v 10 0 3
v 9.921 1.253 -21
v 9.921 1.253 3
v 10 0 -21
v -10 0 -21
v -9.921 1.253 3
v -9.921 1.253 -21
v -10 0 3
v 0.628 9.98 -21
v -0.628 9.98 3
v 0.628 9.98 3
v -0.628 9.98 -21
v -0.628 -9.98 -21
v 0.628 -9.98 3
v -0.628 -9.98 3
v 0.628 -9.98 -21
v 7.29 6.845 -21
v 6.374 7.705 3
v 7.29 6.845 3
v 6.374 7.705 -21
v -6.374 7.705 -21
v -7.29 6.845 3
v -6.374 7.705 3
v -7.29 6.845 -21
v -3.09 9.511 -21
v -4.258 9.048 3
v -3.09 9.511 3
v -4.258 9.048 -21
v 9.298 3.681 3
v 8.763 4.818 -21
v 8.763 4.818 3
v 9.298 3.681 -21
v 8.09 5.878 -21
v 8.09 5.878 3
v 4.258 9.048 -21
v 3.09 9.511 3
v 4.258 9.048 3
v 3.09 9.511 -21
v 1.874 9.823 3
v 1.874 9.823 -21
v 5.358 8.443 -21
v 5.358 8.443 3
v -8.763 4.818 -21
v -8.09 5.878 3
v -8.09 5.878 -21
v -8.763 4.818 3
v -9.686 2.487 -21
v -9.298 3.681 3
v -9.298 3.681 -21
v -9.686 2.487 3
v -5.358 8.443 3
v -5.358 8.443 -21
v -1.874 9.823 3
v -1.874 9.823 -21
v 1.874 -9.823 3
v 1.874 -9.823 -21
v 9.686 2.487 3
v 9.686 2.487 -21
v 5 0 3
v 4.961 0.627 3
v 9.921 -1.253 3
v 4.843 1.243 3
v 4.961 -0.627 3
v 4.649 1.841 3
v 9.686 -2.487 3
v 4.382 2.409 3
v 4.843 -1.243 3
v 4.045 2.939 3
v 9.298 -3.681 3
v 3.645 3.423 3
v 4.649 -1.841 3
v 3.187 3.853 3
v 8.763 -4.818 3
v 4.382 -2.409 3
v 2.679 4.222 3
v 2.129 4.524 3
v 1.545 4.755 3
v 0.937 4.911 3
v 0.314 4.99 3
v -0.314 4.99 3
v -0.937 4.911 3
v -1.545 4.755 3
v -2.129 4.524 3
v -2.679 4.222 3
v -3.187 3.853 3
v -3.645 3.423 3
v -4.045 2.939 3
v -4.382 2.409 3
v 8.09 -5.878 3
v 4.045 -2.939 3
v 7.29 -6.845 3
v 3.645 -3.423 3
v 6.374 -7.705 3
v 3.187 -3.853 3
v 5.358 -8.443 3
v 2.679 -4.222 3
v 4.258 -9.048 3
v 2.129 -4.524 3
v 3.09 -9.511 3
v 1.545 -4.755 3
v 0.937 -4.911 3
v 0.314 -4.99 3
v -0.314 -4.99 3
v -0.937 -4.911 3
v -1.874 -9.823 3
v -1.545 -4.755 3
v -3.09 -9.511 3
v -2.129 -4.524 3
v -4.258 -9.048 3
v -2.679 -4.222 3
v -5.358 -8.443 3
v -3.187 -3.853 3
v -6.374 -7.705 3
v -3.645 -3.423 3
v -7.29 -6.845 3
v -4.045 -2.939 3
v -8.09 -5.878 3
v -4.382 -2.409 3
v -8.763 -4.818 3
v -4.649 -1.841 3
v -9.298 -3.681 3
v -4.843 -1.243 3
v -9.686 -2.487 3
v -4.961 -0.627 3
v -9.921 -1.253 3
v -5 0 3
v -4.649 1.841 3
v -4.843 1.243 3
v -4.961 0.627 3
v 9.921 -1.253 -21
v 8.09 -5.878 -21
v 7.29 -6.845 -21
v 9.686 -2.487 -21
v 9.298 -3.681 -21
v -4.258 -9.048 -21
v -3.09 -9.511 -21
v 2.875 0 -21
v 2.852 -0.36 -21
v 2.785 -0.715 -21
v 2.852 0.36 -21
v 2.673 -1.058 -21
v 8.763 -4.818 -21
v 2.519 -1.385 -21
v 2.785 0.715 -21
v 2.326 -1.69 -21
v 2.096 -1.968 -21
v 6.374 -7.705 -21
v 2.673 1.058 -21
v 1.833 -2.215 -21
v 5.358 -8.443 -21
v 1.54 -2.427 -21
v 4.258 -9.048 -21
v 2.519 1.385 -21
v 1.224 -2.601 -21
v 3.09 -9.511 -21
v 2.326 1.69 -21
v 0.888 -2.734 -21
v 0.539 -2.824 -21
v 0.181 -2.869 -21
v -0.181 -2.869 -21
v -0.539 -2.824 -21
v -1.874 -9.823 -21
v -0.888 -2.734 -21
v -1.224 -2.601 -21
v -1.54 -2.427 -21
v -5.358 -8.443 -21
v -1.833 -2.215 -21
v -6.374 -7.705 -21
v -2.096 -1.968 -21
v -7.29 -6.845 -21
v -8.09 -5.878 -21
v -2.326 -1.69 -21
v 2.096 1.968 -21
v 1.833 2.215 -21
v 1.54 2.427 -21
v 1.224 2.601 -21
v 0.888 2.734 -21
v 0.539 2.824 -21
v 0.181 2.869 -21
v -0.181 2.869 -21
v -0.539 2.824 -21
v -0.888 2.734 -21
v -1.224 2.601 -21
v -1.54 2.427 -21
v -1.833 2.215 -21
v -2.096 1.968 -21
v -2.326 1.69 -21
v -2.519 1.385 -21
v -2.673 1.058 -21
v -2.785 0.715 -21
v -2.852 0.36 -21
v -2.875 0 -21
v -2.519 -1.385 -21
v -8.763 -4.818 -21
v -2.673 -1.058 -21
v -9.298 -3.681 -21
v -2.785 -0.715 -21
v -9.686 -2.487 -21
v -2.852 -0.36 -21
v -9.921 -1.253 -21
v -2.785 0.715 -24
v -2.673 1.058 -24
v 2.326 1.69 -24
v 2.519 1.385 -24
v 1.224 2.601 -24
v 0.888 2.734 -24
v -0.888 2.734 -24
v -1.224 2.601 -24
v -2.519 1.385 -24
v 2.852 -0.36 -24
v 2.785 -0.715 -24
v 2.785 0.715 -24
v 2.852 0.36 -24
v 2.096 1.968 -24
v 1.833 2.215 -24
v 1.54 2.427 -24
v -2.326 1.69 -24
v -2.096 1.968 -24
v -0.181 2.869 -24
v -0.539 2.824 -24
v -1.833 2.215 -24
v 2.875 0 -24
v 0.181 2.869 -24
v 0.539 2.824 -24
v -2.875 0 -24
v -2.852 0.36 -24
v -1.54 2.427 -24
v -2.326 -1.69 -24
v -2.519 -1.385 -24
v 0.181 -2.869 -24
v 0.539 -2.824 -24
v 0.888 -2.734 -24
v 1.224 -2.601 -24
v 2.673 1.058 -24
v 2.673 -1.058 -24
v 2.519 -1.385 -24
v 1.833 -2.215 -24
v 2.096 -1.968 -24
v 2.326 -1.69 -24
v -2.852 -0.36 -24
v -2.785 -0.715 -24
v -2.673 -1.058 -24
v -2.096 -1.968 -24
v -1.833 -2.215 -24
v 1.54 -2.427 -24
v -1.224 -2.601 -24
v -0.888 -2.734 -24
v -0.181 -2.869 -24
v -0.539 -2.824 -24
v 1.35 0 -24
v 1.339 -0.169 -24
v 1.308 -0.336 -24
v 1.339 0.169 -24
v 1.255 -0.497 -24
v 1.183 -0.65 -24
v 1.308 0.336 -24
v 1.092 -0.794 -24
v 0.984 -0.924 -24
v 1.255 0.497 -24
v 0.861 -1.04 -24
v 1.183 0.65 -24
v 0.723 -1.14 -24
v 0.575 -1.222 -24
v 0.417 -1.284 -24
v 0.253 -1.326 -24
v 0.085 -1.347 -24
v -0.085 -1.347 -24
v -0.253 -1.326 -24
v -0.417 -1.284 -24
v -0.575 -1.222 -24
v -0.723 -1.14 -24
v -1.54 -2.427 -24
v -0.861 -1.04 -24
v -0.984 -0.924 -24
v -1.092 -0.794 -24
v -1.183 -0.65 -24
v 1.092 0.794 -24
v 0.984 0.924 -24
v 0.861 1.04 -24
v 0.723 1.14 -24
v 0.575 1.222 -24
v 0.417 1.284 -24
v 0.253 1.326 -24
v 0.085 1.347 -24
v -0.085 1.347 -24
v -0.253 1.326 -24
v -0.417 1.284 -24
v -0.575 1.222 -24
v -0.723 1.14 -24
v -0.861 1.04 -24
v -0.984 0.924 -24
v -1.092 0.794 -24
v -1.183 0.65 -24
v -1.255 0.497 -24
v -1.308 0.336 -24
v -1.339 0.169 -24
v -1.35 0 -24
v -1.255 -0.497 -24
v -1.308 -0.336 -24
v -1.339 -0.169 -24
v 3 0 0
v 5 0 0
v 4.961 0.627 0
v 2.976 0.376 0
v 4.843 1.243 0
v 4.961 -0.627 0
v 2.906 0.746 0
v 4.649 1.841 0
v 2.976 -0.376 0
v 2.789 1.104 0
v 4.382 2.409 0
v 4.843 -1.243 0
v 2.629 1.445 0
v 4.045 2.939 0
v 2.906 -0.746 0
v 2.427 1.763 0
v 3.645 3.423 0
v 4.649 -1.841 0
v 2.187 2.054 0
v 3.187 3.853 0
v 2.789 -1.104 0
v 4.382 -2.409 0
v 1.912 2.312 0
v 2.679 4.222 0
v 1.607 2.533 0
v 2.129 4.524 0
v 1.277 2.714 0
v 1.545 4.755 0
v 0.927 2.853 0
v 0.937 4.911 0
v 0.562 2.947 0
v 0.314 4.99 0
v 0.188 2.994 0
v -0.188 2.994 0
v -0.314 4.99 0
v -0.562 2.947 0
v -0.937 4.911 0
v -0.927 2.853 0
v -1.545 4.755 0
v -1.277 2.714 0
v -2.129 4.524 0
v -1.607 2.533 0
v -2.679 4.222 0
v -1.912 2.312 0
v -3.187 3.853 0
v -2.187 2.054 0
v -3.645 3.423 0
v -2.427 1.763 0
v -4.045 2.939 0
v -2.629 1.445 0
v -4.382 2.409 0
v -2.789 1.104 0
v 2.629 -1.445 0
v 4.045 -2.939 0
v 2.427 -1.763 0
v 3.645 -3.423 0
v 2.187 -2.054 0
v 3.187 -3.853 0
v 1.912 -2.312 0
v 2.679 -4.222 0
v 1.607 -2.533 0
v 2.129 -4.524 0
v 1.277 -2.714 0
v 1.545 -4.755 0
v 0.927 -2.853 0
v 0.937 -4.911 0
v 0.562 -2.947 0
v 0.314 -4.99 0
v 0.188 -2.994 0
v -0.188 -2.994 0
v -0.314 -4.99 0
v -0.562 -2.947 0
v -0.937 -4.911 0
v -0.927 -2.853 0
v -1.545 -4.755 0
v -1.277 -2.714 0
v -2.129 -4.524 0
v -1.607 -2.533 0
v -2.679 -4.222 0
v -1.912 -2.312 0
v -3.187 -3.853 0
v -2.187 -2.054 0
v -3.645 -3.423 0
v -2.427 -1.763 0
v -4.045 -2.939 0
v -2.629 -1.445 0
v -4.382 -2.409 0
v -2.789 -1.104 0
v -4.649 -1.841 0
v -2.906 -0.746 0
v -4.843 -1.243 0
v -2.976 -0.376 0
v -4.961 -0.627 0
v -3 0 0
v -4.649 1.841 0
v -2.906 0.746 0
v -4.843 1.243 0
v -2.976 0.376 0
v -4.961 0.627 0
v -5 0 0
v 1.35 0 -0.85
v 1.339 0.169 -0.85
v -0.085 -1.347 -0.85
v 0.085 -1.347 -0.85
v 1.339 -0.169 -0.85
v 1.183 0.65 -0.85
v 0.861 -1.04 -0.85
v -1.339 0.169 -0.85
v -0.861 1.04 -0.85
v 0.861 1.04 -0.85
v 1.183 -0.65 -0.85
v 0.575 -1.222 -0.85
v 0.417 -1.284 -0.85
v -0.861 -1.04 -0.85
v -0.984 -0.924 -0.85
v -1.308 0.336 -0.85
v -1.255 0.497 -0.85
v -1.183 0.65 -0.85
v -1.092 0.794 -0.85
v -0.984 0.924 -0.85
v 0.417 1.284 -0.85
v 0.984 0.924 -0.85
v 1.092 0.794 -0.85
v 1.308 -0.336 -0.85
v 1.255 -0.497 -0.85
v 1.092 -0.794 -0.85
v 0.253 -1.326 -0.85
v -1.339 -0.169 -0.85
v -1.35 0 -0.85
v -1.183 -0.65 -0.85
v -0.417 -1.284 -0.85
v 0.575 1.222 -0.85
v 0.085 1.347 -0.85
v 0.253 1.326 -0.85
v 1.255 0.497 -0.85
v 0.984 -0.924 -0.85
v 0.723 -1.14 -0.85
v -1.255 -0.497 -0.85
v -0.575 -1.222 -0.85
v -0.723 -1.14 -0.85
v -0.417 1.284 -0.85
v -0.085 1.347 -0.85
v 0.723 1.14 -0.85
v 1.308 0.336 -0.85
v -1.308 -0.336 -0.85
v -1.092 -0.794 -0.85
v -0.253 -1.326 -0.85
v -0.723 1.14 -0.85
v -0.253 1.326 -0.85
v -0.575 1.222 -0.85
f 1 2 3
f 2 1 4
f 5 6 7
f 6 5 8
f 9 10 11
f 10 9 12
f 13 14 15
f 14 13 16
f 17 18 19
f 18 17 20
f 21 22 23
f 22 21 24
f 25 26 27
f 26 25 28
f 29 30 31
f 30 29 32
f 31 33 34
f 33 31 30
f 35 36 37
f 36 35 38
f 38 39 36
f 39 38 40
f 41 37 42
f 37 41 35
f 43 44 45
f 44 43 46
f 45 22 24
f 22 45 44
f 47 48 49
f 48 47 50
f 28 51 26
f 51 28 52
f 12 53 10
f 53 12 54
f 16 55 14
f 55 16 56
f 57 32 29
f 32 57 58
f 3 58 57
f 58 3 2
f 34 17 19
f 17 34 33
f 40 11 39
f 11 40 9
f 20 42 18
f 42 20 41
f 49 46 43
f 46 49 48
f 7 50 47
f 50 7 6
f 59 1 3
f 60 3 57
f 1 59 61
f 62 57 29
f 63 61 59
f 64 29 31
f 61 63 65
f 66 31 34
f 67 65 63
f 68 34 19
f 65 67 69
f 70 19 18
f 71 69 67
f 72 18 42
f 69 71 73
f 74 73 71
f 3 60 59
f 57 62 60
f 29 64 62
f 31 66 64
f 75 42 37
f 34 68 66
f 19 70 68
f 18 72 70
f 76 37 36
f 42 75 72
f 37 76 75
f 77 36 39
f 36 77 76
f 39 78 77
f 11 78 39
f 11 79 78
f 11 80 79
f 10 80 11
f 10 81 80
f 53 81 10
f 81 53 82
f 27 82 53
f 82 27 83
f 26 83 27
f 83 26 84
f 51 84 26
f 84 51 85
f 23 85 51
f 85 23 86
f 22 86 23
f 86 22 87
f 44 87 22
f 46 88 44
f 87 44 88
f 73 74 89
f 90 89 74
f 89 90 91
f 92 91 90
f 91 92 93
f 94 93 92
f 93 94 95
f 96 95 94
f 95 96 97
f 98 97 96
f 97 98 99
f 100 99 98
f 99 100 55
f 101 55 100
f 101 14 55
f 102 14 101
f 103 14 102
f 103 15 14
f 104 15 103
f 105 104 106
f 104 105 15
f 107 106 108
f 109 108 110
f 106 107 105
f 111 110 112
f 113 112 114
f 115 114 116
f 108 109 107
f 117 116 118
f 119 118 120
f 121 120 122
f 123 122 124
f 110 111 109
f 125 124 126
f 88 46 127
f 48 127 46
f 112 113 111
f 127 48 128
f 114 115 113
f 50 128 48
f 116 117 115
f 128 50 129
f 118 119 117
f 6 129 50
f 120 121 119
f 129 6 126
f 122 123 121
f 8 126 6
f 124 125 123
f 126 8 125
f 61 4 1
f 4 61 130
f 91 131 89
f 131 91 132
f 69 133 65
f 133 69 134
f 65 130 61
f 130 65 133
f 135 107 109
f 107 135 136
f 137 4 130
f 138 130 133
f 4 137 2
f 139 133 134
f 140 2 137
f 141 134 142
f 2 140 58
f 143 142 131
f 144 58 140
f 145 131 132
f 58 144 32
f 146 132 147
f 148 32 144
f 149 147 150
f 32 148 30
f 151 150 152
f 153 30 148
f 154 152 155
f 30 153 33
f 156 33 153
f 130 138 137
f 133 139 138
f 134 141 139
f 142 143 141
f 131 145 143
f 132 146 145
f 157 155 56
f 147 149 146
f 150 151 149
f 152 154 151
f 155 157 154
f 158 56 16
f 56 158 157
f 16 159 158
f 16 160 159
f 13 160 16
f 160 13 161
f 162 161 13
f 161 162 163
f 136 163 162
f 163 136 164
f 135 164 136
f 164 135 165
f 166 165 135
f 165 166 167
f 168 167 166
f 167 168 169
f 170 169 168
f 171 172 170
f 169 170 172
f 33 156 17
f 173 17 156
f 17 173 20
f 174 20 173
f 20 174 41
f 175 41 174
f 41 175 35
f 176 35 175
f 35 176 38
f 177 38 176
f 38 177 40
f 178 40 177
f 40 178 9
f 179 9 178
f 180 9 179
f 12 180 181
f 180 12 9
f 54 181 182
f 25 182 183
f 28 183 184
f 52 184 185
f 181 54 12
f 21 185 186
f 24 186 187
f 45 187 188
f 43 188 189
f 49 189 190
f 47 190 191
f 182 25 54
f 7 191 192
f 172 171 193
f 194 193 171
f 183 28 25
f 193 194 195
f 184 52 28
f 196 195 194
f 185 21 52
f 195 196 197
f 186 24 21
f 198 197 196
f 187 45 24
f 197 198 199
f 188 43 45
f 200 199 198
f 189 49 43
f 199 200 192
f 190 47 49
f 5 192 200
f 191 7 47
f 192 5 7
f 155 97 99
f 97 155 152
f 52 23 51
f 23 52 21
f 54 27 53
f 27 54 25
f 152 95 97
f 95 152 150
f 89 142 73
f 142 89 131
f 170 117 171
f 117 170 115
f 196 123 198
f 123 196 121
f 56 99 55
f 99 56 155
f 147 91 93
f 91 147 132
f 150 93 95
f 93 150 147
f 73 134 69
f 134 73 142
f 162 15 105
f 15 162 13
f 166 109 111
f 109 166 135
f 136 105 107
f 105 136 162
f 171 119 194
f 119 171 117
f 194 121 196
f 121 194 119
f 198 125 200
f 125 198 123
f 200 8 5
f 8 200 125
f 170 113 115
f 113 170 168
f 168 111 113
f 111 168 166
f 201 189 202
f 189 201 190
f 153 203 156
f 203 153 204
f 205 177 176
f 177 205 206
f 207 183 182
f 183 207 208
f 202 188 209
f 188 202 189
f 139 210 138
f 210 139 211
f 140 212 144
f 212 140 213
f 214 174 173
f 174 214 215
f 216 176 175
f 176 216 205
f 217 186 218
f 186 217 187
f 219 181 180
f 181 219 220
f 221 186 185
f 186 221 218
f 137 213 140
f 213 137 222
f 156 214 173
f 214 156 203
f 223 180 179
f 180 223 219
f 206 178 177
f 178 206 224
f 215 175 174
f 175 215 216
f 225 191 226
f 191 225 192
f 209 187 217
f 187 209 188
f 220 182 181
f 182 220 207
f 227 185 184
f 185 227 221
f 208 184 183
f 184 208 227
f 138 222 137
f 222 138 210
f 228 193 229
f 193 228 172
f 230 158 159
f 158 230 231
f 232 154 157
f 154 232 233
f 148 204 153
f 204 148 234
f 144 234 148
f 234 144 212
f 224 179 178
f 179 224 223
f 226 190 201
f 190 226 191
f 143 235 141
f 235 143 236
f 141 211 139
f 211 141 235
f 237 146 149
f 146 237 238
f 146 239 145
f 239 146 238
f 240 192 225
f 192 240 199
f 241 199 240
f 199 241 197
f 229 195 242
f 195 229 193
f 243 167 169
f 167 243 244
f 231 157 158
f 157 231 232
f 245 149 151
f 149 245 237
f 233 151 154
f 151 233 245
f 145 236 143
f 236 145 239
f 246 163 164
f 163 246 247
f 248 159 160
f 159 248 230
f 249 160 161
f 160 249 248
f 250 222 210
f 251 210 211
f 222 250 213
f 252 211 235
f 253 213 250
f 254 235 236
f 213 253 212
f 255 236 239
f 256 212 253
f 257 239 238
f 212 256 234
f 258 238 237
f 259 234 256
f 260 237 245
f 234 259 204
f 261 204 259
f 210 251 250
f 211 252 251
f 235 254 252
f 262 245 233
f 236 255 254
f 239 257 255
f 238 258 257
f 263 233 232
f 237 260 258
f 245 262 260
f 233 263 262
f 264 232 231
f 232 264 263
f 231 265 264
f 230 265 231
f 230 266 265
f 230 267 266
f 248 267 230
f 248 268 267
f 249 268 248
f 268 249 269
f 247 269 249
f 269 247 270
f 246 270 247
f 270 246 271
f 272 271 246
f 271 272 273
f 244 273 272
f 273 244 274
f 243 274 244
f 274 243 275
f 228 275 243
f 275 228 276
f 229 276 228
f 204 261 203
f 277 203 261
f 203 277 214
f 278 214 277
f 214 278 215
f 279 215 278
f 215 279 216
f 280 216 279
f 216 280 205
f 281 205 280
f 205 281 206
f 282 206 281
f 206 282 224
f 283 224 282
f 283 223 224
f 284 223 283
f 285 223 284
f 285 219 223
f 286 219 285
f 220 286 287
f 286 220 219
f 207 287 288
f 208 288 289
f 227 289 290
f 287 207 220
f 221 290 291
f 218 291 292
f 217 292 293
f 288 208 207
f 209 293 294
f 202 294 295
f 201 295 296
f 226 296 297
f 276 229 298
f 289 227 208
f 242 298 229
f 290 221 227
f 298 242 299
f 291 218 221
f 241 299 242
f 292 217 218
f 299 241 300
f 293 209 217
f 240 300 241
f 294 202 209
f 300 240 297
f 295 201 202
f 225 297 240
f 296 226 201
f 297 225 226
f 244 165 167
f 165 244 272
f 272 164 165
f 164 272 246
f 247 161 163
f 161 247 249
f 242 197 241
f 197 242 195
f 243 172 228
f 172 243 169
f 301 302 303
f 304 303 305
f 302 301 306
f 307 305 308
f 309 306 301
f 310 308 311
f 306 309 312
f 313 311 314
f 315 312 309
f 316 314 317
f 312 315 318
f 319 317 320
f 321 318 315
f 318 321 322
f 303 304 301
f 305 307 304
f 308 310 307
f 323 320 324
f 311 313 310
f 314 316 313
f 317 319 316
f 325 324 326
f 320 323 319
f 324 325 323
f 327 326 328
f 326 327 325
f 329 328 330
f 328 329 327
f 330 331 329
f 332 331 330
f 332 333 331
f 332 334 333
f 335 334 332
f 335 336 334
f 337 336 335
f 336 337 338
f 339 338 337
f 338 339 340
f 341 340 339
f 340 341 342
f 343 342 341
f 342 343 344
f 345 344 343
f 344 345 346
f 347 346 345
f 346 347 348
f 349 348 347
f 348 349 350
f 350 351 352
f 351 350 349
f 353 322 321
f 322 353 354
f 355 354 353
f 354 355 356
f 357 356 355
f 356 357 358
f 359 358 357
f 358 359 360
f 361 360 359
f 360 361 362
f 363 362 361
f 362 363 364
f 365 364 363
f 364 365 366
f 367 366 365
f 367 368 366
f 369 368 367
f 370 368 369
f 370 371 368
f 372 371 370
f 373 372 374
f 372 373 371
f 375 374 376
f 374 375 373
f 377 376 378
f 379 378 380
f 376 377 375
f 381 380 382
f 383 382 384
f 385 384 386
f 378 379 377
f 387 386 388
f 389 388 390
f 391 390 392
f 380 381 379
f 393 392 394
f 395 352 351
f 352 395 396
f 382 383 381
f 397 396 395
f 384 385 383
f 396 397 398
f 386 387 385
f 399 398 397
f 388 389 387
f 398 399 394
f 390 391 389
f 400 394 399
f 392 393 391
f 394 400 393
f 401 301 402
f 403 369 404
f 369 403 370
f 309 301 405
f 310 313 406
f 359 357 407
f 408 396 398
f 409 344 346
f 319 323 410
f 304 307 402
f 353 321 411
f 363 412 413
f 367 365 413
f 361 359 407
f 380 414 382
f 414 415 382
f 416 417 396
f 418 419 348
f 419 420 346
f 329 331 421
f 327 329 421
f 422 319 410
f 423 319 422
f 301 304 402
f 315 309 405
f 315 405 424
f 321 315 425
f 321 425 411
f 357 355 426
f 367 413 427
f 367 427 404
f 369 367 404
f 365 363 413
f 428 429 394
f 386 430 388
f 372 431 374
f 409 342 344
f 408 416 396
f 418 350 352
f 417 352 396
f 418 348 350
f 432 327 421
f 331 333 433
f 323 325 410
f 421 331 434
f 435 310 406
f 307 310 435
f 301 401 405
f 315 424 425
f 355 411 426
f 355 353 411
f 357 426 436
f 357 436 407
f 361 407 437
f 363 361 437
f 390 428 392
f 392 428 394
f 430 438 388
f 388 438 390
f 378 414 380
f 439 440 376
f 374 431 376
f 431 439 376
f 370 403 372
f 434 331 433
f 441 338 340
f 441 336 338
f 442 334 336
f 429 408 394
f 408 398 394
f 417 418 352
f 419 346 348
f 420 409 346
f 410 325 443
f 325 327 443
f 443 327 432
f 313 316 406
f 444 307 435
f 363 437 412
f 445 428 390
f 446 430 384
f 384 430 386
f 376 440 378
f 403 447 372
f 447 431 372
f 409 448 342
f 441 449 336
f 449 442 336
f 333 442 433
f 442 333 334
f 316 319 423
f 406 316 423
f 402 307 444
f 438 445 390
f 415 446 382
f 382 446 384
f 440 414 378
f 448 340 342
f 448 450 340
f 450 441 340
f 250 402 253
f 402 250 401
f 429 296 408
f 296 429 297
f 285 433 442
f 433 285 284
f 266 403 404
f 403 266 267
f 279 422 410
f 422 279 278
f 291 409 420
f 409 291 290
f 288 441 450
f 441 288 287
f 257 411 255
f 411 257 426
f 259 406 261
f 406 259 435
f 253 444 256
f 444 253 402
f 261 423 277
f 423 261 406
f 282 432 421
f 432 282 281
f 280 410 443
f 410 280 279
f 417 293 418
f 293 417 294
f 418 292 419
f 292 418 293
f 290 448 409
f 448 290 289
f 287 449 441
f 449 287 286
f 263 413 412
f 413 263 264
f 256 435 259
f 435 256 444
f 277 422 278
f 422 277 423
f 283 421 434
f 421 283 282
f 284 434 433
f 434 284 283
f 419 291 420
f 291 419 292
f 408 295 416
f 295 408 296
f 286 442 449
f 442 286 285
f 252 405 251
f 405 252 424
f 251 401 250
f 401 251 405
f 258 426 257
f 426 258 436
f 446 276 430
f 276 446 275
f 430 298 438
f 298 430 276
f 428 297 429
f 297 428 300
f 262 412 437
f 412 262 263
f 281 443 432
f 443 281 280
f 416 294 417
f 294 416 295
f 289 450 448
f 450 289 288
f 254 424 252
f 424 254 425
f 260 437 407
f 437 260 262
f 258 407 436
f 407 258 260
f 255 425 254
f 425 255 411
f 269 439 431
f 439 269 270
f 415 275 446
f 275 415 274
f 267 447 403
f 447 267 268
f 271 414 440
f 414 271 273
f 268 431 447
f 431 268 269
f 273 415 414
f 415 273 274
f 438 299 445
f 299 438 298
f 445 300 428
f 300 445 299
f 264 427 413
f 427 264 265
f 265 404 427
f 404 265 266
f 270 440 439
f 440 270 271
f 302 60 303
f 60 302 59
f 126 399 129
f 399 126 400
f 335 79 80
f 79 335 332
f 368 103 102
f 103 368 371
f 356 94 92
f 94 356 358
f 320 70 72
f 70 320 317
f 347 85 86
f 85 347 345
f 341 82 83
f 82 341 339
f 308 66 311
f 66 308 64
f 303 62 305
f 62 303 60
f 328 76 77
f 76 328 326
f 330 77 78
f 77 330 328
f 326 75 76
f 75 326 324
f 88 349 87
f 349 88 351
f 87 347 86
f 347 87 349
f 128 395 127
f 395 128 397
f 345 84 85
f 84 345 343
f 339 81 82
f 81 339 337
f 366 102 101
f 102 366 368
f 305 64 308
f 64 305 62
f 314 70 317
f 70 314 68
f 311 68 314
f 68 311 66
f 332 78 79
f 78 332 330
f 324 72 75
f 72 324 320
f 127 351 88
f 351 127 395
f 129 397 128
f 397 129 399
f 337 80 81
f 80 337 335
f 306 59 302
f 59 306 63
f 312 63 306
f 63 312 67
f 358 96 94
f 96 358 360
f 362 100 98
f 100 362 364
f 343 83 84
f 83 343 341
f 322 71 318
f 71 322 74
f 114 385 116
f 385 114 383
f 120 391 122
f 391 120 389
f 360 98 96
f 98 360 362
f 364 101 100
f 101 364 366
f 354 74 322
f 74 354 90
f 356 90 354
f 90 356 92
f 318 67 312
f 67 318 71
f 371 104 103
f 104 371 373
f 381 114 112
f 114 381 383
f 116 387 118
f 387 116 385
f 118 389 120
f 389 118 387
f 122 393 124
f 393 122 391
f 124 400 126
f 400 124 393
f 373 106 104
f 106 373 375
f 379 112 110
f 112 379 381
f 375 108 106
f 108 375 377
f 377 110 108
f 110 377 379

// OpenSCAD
$fn = 50;

difference() {
	union() {
		translate(v = [0, 0, -21.0]) {
			cylinder(h = 24, r = 10.0);
		}
		#translate(v = [0, 0, -24.0]) {
			cylinder(h = 24, r = 2.875);
		}
	}
	union() {
		translate(v = [0, 0, 0]) {
			rotate(a = [0, 0, 0]) {
				difference() {
					union() {
						translate(v = [0, 0, -24.0]) {
							cylinder(h = 24, r = 1.0);
						}
						translate(v = [0, 0, -0.85]) {
							cylinder(h = 0.85, r1 = 1.35, r2 = 3.0);
						}
						translate(v = [0, 0, -24.0]) {
							cylinder(h = 24, r = 1.35);
						}
						translate(v = [0, 0, -24.0]) {
							cylinder(h = 24, r = 1.0);
						}
					}
					union();
				}
			}
		}
		#cylinder(h = 3, r = 5.0);
	}
}
